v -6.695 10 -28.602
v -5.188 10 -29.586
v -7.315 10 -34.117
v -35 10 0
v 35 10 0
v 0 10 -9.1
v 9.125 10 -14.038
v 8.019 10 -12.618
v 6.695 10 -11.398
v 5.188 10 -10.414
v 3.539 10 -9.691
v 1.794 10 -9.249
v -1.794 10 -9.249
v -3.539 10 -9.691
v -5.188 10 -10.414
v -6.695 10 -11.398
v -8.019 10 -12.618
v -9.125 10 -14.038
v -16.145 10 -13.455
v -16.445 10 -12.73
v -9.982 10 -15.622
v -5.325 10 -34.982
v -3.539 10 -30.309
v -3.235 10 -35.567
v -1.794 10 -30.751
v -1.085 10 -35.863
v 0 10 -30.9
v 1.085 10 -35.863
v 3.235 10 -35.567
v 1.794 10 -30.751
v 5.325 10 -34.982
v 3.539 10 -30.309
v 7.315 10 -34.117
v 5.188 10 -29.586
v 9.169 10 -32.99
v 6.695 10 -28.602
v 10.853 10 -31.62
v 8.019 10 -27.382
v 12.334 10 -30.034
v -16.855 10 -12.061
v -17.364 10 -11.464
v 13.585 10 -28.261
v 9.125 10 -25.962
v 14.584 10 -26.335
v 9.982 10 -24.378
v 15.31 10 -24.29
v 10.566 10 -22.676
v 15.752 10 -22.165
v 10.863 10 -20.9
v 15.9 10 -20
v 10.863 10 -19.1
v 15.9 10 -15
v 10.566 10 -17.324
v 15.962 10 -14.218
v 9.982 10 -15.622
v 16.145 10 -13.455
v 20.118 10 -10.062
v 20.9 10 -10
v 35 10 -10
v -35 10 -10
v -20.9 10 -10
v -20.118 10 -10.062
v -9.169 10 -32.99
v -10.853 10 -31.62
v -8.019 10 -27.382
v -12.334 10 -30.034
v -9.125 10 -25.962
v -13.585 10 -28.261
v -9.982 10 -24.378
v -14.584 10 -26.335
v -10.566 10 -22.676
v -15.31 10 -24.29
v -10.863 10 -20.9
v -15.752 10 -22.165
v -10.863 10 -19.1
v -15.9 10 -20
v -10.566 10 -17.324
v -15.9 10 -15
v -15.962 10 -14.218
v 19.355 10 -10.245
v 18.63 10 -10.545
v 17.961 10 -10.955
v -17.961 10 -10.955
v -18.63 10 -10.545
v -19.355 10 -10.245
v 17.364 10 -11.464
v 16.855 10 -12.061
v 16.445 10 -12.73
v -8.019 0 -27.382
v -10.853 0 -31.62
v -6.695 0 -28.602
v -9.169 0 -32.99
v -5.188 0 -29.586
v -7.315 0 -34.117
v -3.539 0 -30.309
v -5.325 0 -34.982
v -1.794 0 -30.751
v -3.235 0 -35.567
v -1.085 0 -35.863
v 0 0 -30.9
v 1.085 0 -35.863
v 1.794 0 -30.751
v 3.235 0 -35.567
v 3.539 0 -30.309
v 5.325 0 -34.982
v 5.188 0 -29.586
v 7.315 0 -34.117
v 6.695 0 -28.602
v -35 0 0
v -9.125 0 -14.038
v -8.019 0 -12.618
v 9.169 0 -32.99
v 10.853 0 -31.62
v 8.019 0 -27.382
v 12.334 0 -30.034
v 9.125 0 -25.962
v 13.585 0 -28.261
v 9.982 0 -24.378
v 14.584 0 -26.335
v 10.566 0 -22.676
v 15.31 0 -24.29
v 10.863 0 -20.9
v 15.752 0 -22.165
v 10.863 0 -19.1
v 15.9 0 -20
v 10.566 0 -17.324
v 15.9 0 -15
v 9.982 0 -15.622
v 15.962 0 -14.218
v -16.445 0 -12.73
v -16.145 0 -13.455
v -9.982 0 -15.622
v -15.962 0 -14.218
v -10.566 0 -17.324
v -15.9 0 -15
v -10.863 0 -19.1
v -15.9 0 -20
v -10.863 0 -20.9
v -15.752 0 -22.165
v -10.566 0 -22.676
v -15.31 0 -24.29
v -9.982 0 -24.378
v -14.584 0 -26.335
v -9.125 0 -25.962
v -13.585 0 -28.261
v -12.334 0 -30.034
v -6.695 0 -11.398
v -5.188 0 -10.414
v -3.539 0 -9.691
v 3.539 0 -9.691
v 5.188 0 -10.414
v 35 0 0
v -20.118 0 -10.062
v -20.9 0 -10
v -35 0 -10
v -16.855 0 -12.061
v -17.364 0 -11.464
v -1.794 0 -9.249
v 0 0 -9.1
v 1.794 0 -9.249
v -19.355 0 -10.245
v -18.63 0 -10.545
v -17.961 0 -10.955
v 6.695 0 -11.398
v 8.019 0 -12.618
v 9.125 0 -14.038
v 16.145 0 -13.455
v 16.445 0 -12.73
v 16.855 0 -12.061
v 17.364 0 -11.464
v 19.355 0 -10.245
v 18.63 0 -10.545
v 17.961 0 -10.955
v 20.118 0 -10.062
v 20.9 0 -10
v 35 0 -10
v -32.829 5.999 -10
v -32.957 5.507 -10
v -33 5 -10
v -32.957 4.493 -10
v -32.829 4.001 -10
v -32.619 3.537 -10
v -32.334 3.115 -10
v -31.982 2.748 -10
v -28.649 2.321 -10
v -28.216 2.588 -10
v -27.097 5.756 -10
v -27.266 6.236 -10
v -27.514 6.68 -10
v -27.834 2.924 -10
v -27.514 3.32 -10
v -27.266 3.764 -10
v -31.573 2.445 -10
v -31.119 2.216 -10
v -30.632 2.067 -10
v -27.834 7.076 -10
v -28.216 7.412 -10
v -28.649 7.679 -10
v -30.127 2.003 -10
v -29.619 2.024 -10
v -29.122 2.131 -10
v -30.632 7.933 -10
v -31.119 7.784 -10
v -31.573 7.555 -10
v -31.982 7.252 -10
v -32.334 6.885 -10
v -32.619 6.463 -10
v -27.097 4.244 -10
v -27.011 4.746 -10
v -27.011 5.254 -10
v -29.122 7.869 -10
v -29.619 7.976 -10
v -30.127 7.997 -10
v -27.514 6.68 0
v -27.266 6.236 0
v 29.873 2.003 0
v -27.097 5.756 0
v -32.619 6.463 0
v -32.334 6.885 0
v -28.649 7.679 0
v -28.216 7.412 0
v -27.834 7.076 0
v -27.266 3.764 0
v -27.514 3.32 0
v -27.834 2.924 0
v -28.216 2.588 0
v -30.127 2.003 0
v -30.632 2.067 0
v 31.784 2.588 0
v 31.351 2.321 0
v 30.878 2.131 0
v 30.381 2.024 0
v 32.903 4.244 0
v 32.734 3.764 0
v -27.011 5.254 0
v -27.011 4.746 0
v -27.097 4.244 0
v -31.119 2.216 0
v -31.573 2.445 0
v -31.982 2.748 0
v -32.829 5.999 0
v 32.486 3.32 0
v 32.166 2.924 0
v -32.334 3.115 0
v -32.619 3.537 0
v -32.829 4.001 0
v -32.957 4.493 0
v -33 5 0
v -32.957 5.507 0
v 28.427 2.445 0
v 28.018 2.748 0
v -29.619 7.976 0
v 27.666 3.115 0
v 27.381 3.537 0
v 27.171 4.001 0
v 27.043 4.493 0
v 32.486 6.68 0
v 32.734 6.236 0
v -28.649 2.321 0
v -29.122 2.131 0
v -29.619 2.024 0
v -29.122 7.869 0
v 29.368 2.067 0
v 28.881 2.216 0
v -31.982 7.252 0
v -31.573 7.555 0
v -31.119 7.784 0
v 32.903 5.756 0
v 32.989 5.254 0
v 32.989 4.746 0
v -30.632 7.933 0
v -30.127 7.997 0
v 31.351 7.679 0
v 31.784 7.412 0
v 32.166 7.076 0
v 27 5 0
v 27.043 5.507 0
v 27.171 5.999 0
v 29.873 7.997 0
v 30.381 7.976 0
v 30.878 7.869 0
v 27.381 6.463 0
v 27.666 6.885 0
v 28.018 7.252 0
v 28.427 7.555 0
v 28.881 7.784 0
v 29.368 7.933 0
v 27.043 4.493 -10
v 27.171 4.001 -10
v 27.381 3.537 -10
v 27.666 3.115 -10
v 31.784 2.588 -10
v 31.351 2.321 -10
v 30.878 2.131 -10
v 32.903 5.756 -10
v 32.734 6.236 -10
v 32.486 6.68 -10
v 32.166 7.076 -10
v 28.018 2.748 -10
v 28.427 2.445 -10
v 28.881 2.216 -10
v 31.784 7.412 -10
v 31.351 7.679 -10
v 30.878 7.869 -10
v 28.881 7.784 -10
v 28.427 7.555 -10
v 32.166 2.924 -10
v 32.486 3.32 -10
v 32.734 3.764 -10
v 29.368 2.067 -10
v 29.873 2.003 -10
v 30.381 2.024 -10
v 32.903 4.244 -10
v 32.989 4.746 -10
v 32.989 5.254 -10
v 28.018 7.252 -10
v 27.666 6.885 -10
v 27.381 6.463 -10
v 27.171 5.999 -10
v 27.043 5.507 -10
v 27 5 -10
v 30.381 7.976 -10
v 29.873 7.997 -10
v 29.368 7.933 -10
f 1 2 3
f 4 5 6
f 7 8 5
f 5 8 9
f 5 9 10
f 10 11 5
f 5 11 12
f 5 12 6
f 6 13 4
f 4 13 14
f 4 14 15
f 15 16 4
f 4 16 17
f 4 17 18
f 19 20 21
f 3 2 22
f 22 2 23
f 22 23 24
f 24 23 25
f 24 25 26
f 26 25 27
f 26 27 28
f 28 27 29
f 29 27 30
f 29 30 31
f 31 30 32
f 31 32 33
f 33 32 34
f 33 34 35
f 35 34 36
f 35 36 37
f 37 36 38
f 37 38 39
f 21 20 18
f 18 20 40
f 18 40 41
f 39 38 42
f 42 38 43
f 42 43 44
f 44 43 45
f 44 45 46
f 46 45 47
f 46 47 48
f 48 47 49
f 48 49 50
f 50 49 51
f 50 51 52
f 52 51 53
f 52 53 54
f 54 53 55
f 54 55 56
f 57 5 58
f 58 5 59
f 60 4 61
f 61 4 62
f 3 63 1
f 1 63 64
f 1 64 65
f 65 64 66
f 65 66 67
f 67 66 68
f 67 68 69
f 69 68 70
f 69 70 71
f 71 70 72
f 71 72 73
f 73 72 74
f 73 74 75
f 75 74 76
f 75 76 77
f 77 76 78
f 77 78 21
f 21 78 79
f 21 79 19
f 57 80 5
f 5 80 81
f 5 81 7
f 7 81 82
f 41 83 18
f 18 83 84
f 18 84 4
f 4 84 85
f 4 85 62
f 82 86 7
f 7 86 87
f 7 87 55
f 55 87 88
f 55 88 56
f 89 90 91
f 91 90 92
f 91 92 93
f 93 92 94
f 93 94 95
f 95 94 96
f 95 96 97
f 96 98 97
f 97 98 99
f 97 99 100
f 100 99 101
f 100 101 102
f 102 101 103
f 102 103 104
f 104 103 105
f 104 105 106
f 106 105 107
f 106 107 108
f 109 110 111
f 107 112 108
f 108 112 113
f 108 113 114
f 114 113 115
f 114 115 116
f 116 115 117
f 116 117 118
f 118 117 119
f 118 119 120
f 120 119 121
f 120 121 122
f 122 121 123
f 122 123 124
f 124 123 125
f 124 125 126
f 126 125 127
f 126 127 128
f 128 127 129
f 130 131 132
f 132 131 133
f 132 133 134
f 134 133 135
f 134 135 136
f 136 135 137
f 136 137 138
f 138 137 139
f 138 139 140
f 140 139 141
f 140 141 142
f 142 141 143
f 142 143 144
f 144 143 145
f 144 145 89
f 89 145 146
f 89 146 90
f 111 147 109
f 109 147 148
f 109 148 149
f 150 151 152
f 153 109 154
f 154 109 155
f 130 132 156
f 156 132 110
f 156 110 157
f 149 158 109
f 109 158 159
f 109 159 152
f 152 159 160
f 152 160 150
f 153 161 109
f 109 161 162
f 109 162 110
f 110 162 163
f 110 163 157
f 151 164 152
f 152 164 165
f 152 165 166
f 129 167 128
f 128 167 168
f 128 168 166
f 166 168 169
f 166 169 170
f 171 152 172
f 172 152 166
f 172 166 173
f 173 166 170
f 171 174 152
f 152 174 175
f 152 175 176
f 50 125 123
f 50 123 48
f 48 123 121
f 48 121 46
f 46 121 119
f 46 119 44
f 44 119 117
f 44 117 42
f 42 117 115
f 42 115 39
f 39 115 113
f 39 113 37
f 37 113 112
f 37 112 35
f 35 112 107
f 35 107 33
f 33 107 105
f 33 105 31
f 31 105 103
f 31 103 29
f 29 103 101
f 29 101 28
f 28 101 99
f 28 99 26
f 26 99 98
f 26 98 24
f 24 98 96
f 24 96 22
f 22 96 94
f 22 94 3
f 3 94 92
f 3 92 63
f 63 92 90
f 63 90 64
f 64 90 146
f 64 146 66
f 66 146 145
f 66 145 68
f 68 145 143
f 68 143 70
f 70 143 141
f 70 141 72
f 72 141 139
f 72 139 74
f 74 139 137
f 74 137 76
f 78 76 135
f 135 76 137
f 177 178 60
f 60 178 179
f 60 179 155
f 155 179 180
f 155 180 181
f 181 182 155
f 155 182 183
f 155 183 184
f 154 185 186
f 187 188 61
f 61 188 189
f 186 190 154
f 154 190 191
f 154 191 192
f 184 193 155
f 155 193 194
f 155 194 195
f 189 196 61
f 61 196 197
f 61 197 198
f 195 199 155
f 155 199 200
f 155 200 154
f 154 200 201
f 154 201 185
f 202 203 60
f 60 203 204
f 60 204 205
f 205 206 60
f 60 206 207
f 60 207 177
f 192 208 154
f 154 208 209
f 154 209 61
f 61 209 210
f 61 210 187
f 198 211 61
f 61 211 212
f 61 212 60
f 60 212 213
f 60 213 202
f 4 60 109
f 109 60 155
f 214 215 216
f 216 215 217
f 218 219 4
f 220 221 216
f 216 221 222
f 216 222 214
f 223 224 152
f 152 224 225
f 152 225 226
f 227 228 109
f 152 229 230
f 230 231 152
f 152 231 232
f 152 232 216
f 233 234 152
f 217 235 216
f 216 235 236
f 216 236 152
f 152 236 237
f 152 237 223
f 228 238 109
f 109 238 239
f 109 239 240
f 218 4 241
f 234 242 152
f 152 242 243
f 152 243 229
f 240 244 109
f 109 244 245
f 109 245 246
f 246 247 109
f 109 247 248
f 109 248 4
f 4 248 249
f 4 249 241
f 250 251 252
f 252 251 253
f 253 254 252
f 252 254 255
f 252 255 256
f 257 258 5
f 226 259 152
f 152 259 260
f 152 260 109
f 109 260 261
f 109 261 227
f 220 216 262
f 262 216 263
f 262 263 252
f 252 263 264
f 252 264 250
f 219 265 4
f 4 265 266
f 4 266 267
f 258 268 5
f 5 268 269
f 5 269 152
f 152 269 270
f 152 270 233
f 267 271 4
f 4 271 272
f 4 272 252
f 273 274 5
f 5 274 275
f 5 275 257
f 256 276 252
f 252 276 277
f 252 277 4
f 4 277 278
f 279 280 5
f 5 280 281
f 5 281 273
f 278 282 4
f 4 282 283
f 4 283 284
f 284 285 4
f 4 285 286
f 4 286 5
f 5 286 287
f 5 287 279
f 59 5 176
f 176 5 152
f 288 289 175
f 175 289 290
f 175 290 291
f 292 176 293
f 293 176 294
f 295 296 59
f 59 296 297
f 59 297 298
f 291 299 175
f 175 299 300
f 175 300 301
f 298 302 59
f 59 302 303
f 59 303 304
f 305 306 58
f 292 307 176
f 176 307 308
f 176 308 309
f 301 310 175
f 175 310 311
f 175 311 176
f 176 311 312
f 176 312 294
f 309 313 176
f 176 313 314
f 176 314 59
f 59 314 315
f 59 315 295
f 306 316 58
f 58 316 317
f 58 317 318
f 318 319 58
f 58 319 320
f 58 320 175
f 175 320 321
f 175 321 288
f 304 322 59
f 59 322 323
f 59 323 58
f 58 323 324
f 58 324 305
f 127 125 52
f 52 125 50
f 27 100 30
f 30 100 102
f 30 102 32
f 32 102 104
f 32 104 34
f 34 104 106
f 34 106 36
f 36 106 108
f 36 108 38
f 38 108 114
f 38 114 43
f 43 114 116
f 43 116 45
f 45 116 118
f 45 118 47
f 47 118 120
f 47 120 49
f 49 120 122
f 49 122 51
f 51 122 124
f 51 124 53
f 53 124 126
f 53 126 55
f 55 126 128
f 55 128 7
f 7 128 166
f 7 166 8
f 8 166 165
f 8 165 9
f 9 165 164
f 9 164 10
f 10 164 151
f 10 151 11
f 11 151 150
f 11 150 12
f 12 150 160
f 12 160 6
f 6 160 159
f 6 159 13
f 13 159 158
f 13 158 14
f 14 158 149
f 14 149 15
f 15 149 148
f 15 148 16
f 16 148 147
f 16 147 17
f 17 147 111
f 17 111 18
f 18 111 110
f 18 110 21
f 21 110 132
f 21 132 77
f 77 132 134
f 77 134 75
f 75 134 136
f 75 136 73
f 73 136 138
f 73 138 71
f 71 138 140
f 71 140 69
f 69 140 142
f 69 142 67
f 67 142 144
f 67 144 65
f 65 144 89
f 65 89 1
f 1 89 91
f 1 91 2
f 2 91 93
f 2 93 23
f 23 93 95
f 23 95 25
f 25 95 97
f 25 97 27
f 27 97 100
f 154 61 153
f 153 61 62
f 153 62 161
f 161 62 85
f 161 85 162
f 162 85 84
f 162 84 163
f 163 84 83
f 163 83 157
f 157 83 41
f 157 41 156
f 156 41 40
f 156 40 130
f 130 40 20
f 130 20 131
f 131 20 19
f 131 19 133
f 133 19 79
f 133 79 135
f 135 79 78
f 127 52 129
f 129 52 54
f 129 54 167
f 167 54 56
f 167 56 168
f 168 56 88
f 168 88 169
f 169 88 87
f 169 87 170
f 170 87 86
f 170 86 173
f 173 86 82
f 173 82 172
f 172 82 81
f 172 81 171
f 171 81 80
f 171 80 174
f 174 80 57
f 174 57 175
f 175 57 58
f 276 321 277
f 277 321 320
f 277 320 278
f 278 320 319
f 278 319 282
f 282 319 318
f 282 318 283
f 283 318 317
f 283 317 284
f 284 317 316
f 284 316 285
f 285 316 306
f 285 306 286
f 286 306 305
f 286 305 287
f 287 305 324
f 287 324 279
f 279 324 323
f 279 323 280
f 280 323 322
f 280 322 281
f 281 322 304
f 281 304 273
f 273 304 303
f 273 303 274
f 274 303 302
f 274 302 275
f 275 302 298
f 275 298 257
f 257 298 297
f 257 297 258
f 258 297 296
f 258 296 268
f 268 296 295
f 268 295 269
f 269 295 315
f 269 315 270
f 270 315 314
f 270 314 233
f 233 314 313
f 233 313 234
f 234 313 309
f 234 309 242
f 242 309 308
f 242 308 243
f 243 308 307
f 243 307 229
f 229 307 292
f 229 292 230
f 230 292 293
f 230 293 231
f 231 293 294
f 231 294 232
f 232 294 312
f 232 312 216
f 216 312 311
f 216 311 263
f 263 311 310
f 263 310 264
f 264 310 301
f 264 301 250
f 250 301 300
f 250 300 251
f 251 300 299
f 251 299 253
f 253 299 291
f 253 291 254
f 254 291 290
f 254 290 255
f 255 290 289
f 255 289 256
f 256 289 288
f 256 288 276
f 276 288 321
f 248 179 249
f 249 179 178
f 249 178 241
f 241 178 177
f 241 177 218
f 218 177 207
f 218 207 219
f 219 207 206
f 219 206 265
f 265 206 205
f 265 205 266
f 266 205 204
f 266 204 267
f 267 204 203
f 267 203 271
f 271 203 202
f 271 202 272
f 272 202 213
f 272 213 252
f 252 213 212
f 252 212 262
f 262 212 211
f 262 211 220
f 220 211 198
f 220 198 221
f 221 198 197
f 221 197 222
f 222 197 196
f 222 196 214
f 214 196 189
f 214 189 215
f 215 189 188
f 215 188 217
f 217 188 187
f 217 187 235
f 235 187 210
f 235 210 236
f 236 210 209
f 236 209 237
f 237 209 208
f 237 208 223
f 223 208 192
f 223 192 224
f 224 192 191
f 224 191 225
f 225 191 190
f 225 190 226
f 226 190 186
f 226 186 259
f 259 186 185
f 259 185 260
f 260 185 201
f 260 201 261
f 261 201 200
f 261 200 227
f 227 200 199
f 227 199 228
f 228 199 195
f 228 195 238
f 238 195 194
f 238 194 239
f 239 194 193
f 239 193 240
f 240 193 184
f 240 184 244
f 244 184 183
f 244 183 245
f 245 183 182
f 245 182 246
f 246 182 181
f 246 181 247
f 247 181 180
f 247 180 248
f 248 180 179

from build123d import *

# Parameters (mm, degrees)
SKETCH1_R           = 10.9
BOSS_EXTRUDE1_DEPTH = 10
FILLET1_R           = 5
SKETCH2_R           = 3
CUT_EXTRUDE1_DEPTH  = 45.674489365


with BuildPart() as part:
    # Sketch1 → Boss-Extrude1 (new body)
    with BuildSketch(Plane(origin=(0, 0, 0), x_dir=(1, 0, 0), z_dir=(0, 1, 0))):
        with BuildLine():
            Line((35, 0), (-35, 0))
            Line((-35, 0), (-35, 10))
            Line((-35, 10), (-15.9, 10))
            Line((-15.9, 10), (-15.9, 20))
            ThreePointArc((-15.9, 20), (0, 35.9), (15.9, 20))
            Line((15.9, 20), (15.9, 10))
            Line((15.9, 10), (35, 10))
            Line((35, 10), (35, 0))
        make_face()
        with Locations(Location((0, 20, 0), (0, 0, 270))):
            Circle(SKETCH1_R, mode=Mode.SUBTRACT)
    extrude(amount=BOSS_EXTRUDE1_DEPTH)

    # Fillet1
    fillet1_edges = [part.edges().sort_by_distance(p)[0] for p in [
        (15.9, 5, -10),
        (-15.9, 5, -10),
    ]]
    fillet(fillet1_edges, radius=FILLET1_R)

    # Sketch2 → Cut-Extrude1 (cut, through all)
    with BuildSketch(Plane(origin=(0, 0, -10), x_dir=(-1, 0, 0), z_dir=(0, 0, -1))):
        with Locations((-30, 5)):
            Circle(SKETCH2_R)
        with Locations((30, 5)):
            Circle(SKETCH2_R)
    extrude(amount=-CUT_EXTRUDE1_DEPTH, mode=Mode.SUBTRACT)


solid = part.part
